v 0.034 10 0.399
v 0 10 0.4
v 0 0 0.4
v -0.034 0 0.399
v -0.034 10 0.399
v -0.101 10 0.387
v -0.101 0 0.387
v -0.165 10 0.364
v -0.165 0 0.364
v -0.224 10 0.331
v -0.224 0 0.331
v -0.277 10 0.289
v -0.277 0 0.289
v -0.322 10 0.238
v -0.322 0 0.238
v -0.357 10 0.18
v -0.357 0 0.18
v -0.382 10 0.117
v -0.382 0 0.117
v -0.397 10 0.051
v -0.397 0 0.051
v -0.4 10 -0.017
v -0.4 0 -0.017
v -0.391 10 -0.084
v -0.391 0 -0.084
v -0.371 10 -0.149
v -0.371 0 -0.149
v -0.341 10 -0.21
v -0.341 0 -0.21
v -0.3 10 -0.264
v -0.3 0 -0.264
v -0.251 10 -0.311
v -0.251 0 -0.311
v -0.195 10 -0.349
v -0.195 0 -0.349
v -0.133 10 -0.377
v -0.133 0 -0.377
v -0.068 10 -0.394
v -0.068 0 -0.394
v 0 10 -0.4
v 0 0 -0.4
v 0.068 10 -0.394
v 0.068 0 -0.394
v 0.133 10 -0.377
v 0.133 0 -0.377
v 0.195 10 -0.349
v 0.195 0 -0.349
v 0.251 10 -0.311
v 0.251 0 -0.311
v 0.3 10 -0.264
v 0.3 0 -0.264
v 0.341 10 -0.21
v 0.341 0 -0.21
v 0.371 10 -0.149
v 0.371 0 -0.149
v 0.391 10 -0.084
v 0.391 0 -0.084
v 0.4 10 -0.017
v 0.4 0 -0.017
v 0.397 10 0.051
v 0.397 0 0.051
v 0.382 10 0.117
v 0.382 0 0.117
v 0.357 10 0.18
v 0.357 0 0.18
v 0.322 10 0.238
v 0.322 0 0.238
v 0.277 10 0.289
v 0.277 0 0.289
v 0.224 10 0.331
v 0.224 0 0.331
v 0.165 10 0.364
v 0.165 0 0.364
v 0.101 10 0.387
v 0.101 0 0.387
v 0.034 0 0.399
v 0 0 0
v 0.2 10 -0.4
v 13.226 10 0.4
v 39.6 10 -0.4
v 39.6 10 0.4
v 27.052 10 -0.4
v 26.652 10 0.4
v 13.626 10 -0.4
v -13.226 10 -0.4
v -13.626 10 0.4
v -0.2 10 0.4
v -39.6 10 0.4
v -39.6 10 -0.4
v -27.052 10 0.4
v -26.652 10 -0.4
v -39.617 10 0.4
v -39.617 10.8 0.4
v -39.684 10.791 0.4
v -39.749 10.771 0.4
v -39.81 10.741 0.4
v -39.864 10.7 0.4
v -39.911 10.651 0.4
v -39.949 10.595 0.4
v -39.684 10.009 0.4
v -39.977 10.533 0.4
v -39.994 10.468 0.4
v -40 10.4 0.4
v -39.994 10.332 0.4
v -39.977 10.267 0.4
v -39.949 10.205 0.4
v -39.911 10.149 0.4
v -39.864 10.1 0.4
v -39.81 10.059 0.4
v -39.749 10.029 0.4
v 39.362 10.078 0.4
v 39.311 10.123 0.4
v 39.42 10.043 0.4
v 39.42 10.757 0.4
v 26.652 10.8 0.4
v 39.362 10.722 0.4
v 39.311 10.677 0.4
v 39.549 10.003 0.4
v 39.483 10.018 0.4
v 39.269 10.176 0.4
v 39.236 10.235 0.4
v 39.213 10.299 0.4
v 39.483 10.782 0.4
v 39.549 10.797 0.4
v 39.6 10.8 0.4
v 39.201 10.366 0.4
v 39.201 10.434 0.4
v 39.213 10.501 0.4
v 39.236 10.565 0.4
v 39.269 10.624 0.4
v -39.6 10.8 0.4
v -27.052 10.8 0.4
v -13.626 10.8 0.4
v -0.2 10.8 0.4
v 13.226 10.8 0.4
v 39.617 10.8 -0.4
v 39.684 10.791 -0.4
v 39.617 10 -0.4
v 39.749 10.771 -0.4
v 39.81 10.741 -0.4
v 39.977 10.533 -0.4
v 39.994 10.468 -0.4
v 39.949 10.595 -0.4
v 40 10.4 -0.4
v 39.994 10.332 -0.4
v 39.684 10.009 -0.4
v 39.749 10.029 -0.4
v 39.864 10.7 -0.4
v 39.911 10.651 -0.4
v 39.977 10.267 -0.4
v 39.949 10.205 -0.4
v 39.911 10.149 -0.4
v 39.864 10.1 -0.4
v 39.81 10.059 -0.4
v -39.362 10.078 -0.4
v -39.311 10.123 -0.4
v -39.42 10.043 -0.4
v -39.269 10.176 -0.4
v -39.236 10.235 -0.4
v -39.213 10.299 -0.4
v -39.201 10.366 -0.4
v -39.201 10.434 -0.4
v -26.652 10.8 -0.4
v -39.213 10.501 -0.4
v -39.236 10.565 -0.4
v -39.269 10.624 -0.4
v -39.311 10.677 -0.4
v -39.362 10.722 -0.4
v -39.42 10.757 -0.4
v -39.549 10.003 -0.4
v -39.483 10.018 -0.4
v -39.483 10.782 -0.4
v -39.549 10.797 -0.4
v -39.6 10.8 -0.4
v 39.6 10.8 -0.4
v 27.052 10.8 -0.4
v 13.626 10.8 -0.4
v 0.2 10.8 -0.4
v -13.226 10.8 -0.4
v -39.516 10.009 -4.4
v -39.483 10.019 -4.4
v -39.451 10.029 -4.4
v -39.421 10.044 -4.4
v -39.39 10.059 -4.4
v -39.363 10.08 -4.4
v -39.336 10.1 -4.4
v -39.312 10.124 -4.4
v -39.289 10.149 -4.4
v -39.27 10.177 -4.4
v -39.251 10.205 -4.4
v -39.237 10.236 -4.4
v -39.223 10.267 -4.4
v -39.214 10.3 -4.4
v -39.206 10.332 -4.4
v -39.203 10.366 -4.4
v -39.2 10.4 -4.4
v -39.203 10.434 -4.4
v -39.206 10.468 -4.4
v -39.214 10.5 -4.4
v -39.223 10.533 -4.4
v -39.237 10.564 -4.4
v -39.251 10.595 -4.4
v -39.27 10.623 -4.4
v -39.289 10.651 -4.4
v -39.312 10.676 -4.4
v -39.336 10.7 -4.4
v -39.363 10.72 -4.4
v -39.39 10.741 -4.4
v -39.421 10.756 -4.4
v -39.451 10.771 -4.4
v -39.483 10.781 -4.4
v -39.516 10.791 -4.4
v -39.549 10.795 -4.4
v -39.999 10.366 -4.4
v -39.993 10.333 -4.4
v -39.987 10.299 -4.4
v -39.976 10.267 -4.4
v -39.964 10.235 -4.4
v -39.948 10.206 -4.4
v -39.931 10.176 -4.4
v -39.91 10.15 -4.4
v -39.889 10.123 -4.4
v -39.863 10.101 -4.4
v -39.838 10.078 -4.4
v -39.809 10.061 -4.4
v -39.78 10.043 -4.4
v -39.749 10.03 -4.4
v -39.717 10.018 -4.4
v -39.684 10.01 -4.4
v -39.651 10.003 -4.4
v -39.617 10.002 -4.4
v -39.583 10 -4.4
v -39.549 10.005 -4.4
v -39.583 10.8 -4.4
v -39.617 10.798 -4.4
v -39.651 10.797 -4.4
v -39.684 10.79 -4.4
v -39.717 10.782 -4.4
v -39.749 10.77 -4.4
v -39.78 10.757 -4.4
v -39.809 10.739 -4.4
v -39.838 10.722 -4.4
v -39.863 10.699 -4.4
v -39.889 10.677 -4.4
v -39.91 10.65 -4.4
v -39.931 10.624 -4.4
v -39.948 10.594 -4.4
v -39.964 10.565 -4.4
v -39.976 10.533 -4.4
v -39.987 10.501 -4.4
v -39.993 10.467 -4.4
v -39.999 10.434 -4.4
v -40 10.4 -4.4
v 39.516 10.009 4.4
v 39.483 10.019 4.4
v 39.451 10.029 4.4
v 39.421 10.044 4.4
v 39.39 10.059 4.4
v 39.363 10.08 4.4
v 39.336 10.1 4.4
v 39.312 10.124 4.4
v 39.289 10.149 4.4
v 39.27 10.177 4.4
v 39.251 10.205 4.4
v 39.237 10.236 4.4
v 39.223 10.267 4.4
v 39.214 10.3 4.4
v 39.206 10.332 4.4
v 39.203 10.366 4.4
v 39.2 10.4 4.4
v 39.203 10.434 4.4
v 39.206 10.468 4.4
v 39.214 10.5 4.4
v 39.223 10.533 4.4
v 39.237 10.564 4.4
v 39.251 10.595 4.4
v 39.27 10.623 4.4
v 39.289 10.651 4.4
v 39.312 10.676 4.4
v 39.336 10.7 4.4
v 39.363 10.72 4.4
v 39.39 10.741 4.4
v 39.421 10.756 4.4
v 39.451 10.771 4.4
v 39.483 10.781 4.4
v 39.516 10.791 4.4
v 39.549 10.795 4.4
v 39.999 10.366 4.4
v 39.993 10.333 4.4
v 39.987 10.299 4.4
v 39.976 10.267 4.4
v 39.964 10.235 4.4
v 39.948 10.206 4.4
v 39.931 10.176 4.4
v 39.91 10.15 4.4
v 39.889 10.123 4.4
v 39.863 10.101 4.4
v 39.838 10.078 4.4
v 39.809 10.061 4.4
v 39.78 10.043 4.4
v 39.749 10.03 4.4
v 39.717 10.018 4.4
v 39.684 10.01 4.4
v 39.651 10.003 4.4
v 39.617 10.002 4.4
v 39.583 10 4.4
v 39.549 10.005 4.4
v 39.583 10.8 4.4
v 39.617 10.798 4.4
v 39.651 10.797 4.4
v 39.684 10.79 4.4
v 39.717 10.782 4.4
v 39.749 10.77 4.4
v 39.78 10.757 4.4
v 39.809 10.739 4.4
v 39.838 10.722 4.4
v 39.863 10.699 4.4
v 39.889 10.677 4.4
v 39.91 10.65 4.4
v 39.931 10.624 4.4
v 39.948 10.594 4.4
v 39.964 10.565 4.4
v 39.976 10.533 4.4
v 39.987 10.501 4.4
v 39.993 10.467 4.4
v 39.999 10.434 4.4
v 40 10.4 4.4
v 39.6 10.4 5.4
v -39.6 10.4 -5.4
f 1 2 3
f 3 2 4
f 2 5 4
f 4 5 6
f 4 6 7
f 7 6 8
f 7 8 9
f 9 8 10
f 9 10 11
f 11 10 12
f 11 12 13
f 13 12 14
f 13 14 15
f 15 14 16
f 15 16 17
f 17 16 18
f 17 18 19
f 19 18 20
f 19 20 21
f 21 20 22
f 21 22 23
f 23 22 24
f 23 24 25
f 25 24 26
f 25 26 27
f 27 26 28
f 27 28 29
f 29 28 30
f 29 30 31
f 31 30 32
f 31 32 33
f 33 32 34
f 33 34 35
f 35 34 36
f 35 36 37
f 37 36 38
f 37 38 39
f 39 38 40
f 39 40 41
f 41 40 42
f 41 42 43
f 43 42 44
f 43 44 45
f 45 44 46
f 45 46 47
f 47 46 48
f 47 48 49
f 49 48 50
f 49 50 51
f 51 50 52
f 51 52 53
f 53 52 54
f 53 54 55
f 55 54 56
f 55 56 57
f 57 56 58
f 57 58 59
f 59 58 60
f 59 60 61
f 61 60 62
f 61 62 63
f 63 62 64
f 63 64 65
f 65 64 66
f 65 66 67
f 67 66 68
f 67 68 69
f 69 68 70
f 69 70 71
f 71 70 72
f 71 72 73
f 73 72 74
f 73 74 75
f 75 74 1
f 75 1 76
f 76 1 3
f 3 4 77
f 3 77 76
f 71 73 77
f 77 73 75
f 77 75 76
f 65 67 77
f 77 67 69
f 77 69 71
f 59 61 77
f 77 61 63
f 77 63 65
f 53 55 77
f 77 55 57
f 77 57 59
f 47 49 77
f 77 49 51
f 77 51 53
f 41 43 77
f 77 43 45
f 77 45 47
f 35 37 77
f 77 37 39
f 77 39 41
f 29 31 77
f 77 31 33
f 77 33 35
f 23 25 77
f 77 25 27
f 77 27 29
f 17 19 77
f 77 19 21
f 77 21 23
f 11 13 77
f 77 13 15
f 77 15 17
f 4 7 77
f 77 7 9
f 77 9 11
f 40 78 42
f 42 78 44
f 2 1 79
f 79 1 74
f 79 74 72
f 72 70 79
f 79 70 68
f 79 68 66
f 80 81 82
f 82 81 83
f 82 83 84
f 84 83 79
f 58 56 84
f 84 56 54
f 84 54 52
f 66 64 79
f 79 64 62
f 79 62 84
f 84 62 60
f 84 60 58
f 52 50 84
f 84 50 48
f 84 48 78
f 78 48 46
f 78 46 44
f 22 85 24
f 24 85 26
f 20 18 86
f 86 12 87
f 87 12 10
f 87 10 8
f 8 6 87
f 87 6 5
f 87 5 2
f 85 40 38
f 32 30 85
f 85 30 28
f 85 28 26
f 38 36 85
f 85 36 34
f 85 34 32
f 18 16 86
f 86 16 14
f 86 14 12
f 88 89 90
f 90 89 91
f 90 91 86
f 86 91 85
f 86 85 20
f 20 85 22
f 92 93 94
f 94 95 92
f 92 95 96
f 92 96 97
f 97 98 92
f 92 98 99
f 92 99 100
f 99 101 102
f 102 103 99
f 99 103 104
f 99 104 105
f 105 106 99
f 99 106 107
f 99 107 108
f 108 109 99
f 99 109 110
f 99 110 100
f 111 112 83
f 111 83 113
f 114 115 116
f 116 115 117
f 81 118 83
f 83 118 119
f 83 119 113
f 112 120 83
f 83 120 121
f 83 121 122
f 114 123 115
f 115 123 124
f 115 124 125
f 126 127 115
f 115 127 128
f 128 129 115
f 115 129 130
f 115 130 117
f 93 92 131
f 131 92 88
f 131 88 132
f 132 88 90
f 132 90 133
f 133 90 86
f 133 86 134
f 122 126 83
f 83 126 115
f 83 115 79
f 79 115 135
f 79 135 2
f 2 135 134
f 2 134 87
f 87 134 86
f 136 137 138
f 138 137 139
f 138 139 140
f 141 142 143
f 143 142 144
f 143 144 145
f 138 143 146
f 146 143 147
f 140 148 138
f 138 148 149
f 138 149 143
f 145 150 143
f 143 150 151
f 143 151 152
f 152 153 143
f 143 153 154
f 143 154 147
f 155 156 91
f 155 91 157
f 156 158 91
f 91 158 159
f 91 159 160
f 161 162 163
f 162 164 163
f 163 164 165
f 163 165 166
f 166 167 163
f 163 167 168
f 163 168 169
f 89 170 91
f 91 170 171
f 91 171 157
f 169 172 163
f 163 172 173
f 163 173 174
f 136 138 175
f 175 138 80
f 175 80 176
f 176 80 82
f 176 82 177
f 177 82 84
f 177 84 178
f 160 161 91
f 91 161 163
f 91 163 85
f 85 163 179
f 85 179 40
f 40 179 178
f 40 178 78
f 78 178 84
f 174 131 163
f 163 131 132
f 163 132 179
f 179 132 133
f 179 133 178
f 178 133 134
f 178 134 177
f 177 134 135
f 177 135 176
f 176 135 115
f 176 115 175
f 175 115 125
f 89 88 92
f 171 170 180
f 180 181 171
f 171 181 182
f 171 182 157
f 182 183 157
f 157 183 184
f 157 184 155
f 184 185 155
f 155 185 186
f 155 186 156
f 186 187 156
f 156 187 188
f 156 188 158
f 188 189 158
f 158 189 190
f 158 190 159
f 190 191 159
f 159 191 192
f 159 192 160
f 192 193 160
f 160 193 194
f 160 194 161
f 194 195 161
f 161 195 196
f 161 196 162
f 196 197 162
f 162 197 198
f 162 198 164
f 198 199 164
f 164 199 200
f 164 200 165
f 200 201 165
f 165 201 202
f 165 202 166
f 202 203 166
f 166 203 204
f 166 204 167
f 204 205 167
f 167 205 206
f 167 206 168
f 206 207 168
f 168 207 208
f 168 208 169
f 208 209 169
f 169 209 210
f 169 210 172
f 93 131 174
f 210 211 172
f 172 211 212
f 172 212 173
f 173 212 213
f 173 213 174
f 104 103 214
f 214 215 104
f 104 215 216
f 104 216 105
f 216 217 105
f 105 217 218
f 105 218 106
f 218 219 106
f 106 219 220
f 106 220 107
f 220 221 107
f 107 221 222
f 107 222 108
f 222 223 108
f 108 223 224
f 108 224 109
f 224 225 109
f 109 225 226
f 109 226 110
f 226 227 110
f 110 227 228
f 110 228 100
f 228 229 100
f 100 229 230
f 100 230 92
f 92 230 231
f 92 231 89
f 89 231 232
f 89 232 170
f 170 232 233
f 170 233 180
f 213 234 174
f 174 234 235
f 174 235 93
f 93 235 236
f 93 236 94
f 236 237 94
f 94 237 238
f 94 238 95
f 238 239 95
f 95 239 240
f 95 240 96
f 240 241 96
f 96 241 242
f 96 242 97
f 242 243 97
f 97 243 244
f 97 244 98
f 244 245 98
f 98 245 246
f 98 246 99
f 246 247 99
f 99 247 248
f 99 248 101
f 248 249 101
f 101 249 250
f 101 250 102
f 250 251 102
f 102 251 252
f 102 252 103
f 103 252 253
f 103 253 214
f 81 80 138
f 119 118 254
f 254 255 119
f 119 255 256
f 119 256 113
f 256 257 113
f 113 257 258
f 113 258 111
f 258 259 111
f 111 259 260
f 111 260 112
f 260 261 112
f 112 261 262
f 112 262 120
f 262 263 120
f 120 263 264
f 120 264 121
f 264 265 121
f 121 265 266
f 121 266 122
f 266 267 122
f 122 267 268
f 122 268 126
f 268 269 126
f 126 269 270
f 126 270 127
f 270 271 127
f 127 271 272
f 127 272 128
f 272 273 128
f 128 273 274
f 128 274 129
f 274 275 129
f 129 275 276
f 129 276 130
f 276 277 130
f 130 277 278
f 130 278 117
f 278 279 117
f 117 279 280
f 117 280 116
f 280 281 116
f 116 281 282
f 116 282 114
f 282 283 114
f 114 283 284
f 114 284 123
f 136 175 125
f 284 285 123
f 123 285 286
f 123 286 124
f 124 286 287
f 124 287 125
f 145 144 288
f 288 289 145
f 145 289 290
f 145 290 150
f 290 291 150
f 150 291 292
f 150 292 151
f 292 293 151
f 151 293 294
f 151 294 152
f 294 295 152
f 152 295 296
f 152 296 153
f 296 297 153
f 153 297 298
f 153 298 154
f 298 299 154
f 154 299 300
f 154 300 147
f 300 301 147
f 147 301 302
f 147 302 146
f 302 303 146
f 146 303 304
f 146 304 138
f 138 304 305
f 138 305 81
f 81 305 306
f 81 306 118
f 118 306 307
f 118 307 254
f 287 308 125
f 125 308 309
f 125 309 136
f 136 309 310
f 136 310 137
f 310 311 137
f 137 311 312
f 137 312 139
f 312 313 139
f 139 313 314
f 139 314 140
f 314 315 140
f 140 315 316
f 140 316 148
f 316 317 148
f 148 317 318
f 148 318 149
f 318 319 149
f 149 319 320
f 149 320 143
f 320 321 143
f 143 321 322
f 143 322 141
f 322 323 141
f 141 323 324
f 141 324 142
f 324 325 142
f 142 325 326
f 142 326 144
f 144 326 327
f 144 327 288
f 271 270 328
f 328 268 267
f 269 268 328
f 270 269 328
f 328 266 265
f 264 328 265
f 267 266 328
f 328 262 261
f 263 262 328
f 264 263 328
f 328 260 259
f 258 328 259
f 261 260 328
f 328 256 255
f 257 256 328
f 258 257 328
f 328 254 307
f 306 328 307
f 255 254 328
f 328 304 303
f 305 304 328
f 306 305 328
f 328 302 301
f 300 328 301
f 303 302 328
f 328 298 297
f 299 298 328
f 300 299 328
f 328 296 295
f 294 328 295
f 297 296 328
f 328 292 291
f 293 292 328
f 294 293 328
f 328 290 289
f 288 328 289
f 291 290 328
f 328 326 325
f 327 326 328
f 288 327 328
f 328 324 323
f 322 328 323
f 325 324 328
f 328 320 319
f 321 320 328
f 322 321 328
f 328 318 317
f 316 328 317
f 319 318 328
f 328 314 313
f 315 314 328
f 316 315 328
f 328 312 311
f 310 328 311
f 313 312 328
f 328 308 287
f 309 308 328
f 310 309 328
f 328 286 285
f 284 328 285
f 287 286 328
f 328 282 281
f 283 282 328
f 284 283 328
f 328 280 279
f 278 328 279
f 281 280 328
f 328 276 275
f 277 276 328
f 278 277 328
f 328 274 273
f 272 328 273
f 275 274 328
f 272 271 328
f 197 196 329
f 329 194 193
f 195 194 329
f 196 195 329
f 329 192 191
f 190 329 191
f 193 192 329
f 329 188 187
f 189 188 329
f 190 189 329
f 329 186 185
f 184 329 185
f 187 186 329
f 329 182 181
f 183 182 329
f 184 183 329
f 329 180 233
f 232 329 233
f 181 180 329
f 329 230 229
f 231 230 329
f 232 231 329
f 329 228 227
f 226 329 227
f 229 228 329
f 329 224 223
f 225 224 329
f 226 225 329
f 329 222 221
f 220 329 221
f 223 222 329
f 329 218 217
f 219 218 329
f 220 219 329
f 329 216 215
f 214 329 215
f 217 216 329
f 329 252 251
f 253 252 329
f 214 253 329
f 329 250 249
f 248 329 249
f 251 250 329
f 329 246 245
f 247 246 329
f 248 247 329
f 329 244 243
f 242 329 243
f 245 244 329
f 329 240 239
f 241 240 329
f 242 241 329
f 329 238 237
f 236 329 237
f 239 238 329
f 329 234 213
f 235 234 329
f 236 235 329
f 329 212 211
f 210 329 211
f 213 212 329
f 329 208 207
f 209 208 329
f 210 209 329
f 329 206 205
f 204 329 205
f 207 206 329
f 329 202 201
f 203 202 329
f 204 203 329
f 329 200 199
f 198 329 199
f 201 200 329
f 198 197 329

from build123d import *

# Parameters (mm, degrees)
SKETCH_1_R      = 0.4
EXTRUDE_1_DEPTH = 10
SKETCH_2_W      = 80
SKETCH_2_H      = 0.8
EXTRUDE_2_DEPTH = 0.8
FILLET_1_R      = 0.4
SKETCH_3_R      = 0.4
EXTRUDE_3_DEPTH = 4
SKETCH_4_R      = 0.4
EXTRUDE_4_DEPTH = 4


with BuildPart() as part:
    # 草图1 → 凸台-拉伸1 (new body)
    with BuildSketch(Plane(origin=(0, 0, 0), x_dir=(1, 0, 0), z_dir=(0, 1, 0))):
        with Locations(Location((0, 0, 0), (0, 0, 270))):
            Circle(SKETCH_1_R)
    extrude(amount=EXTRUDE_1_DEPTH)

    # 草图2 → 凸台-拉伸2 (add)
    with BuildSketch(Plane(origin=(0, 10, 0), x_dir=(1, 0, 0), z_dir=(0, 1, 0))):
        Rectangle(SKETCH_2_W, SKETCH_2_H)
    extrude(amount=EXTRUDE_2_DEPTH)

    # 圆角1
    fillet_1_edges = [part.edges().sort_by_distance(p)[0] for p in [
        (40, 10, 0),
        (40, 10.8, 0),
        (-40, 10, 0),
        (-40, 10.8, 0),
    ]]
    fillet(fillet_1_edges, radius=FILLET_1_R - 0.0001)  # a hair under: the kernel refuses the full size

    # 草图3 → 凸台-拉伸3 (add)
    with BuildSketch(Plane.XY.offset(0.4)):
        with Locations((39.6, 10.4)):
            Circle(SKETCH_3_R)
    extrude(amount=EXTRUDE_3_DEPTH)

    # 草图4 → 凸台-拉伸4 (add)
    with BuildSketch(Plane(origin=(0, 0, -0.4), x_dir=(-1, 0, 0), z_dir=(0, 0, -1))):
        with Locations((39.6, 10.4)):
            Circle(SKETCH_4_R)
    extrude(amount=EXTRUDE_4_DEPTH)

    # 草图5 → 旋转1 (revolve)
    with BuildSketch(Plane(origin=(0, 10.4, 0), x_dir=(1, 0, 0), z_dir=(0, 1, 0))):
        Polygon((39.6, -4.4), (39.6, -5.4), (40, -4.4), align=None)
    revolve(axis=Axis((39.6, 10.4, 4.4), (0, 0, 1)))

    # 草图6 → 旋转2 (revolve)
    with BuildSketch(Plane(origin=(0, 10.4, 0), x_dir=(1, 0, 0), z_dir=(0, 1, 0))):
        Polygon((-39.6, 4.4), (-39.6, 5.4), (-40, 4.4), align=None)
    revolve(axis=Axis((-39.6, 10.4, -4.4), (0, 0, -1)))


solid = part.part
